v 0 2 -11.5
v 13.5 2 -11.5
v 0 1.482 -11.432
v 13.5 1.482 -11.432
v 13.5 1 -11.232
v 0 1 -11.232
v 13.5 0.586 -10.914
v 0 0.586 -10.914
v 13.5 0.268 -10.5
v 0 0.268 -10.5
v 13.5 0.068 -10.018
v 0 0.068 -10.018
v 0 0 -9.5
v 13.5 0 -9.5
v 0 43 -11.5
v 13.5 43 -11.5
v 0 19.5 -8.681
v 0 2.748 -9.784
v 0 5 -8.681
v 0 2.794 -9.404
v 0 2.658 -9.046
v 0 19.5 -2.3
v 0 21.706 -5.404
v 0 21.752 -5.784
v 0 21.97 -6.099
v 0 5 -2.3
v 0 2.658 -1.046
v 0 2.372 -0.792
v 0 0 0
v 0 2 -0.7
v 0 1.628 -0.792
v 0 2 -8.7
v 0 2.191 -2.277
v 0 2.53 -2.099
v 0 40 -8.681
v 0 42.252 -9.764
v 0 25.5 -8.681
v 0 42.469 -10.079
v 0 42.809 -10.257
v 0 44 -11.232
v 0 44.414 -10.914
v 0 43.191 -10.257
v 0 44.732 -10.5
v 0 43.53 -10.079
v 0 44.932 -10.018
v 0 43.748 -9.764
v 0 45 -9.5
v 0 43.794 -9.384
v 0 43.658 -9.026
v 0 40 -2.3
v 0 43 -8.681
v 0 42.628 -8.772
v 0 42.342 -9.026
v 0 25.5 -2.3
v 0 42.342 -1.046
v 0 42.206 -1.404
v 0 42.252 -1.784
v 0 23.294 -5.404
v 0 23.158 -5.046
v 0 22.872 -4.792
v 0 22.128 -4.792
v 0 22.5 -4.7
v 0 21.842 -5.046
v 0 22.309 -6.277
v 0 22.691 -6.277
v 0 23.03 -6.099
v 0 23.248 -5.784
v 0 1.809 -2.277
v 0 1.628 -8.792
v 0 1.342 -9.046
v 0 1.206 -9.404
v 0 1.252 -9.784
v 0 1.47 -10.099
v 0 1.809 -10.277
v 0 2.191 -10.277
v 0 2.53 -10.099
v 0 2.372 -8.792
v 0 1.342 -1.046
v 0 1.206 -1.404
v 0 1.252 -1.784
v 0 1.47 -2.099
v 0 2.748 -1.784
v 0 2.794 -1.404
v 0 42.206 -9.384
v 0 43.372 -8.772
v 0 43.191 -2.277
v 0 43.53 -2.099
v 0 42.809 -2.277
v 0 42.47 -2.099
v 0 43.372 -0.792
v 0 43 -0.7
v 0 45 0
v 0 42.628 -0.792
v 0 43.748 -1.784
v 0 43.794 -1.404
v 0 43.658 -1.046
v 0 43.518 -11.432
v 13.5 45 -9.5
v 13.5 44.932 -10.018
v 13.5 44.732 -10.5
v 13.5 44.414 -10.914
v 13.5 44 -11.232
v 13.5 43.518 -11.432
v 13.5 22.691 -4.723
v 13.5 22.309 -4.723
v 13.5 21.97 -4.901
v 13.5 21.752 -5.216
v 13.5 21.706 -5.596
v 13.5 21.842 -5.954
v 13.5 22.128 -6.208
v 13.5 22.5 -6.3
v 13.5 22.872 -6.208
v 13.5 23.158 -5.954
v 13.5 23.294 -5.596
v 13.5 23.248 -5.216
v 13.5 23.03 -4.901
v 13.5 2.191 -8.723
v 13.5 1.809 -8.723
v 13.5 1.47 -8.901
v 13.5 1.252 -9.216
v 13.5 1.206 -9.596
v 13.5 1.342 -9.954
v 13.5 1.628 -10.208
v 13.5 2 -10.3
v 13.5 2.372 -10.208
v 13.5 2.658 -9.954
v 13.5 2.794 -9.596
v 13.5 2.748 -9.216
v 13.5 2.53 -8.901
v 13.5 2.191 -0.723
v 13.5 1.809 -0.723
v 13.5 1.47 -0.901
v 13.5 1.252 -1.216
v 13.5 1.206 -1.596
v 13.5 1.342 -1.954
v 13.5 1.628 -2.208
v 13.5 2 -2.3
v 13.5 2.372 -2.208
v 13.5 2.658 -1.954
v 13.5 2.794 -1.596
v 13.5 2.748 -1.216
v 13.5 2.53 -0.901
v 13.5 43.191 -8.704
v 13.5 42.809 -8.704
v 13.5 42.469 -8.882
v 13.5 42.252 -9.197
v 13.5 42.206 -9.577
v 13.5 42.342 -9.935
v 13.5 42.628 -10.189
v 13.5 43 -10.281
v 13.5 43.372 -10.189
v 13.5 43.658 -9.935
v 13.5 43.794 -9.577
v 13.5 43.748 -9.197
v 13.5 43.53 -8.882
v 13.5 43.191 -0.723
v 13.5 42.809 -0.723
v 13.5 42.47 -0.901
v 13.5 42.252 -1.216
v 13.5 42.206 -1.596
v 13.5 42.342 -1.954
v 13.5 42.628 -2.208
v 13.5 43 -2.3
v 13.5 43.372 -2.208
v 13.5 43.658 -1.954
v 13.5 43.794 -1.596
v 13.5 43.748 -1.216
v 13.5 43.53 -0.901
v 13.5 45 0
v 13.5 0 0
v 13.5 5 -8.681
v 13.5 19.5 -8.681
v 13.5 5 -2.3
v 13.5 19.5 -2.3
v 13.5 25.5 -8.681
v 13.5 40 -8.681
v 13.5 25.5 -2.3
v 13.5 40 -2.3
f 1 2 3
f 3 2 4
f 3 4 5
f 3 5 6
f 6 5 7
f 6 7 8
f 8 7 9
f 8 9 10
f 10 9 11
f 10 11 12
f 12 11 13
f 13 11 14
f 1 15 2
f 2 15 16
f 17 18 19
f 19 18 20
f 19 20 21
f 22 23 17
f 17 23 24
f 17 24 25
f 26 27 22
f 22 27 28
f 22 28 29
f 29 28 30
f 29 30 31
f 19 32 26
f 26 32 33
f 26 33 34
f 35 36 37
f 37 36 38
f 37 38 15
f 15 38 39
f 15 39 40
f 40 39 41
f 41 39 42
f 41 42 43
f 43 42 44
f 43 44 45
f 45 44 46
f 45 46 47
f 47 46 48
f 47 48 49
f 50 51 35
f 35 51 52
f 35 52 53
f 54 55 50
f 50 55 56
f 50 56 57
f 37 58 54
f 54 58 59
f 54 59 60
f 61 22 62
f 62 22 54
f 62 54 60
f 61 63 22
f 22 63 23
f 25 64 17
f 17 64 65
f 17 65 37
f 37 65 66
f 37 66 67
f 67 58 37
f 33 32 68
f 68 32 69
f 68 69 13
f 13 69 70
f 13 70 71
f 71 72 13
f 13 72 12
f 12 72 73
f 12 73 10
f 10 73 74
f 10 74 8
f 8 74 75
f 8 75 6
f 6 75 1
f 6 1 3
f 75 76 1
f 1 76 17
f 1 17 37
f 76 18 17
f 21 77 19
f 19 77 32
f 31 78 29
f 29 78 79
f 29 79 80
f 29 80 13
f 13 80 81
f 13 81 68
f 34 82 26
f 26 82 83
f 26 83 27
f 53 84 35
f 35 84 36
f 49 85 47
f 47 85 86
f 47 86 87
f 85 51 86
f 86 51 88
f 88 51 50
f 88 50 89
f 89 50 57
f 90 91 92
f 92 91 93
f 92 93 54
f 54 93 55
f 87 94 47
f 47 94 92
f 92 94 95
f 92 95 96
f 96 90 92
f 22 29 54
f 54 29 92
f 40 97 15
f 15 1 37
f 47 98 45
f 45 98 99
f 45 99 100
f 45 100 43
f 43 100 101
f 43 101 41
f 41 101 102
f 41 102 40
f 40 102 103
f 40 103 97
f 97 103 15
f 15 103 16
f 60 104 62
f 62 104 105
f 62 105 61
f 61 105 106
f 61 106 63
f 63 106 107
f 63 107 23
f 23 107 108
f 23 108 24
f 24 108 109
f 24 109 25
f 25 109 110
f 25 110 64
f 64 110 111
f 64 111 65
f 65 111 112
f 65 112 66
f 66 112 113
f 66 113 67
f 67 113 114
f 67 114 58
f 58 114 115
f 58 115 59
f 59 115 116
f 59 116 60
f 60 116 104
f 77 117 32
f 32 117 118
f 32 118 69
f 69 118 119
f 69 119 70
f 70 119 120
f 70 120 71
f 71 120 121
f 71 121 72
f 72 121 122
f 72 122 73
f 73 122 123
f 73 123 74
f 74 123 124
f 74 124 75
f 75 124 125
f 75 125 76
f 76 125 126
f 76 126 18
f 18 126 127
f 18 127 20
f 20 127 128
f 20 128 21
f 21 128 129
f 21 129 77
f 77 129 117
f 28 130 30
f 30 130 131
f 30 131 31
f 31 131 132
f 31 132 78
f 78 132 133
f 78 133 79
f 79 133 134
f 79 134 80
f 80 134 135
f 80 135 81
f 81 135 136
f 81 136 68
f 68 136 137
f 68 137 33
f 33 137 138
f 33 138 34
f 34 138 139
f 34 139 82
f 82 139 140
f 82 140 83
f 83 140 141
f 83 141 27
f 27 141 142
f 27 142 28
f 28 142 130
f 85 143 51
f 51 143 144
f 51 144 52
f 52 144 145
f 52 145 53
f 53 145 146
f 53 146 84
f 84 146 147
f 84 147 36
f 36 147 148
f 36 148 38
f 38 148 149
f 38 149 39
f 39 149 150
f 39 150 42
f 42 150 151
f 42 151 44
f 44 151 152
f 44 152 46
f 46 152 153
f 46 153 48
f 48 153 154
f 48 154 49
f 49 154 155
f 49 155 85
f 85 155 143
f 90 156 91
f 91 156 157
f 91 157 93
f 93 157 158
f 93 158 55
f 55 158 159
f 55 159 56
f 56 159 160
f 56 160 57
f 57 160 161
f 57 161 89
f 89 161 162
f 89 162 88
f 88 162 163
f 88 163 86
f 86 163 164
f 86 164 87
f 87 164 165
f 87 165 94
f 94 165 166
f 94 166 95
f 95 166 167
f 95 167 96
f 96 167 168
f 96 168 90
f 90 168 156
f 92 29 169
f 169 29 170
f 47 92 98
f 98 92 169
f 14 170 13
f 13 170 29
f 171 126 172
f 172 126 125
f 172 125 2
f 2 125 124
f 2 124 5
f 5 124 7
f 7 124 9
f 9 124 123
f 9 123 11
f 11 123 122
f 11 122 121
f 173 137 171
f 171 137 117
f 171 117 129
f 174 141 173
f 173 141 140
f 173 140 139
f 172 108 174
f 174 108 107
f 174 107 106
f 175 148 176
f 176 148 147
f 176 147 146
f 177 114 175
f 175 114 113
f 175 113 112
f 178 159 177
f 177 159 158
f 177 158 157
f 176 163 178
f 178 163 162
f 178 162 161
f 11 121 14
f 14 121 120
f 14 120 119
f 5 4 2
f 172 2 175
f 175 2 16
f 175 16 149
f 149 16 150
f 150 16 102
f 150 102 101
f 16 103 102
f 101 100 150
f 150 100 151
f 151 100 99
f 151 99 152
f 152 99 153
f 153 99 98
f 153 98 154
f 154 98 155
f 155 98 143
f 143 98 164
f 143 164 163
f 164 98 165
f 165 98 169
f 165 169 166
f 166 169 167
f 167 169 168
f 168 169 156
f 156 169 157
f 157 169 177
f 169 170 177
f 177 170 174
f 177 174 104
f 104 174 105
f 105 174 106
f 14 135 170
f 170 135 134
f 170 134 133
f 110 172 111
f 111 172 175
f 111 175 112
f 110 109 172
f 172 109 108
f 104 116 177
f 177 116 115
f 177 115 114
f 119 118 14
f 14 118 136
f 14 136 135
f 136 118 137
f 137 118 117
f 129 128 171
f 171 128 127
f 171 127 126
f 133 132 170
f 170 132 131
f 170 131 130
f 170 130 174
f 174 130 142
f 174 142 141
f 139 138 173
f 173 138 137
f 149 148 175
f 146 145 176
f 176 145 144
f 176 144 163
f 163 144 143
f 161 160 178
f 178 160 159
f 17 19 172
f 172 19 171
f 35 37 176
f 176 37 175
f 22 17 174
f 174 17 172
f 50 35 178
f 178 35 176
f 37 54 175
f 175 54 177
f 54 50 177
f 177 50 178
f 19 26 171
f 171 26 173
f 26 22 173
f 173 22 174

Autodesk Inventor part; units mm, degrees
ref_plane "YZ Plane" through (0, 0, 0) normal (1, 0, 0) x (0, 1, 0)
ref_plane "XZ Plane" through (0, 0, 0) normal (0, 1, 0) x (-1, 0, 0)
ref_plane "XY Plane" through (0, 0, 0) normal (0, 0, 1) x (1, 0, 0)
sketch "スケッチ1" plane through (0, 0, 0) normal (1, 0, 0) x (0, 1, 0)
  line L0 (45, 0) -> (0, 0)
  line L1 (0, 0) -> (0, -11.5)
  line L2 (0, -11.5) -> (45, -11.5)
  line L3 (45, -11.5) -> (45, 0)
  dimension "d0" = 45
  dimension "d1" = 11.5
extrude "押し出し1" add sketch "スケッチ1" along normal blind 13.5
sketch "スケッチ2" plane through (13.5, 0, 0) normal (1, 0, 0) x (0, 0, -1)
  circle A0 centre (1.5, 43) radius 0.8 projected
  circle A1 centre (9.4807, 43) radius 0.8 projected
  circle A2 centre (9.5, 2) radius 0.8 projected
  circle A3 centre (1.5, 2) radius 0.8 projected
  circle A4 centre (5.5, 22.5) radius 0.8 projected
  point P0 (0, 0)
extrude "押し出し2" cut sketch "スケッチ2" against normal through all
fillet "フィレット1" radius 2 2 edges at (6.75, 45, -11.5) (6.75, 0, -11.5)
sketch "スケッチ4" plane through (13.5, 0, 0) normal (1, 0, 0) x (0, 0, -1)
  line L0 (2.3, 40) -> (8.6807, 40)
  line L1 (8.6807, 40) -> (8.6807, 25.5)
  line L2 (8.6807, 25.5) -> (2.3, 25.5)
  line L3 (2.3, 25.5) -> (2.3, 40)
  line L4 (2.3, 19.5) -> (8.6807, 19.5)
  line L5 (8.6807, 19.5) -> (8.6807, 5)
  line L6 (8.6807, 5) -> (2.3, 5)
  line L7 (2.3, 5) -> (2.3, 19.5)
  circle A0 centre (1.5, 43) radius 0.8 projected
  arc A1 (9.5, 0) -> (11.5, 2) centre (9.5, 2) ccw projected
  line L8 (11.5, 2) -> (11.5, 43) projected
  arc A2 (11.5, 43) -> (9.5, 45) centre (9.5, 43) ccw projected
  line L9 (9.5, 45) -> (0, 45) projected
  line L10 (0, 45) -> (0, 0) projected
  line L11 (0, 0) -> (9.5, 0) projected
  circle A3 centre (5.5, 22.5) radius 0.8 projected
  circle A4 centre (9.5, 2) radius 0.8 projected
  circle A5 centre (1.5, 2) radius 0.8 projected
  circle A6 centre (9.4807, 43) radius 0.8 projected
  circle A7 centre (1.5, 43) radius 0.8 projected
  dimension "d9" = 3
  dimension "d10" = 3
  dimension "d11" = 3
  dimension "d12" = 3
extrude "押し出し3" cut sketch "スケッチ4" against normal through all contours L0 L1 L2 L3 | L4 L5 L6 L7
properties part number "chest_cover_stopper"
